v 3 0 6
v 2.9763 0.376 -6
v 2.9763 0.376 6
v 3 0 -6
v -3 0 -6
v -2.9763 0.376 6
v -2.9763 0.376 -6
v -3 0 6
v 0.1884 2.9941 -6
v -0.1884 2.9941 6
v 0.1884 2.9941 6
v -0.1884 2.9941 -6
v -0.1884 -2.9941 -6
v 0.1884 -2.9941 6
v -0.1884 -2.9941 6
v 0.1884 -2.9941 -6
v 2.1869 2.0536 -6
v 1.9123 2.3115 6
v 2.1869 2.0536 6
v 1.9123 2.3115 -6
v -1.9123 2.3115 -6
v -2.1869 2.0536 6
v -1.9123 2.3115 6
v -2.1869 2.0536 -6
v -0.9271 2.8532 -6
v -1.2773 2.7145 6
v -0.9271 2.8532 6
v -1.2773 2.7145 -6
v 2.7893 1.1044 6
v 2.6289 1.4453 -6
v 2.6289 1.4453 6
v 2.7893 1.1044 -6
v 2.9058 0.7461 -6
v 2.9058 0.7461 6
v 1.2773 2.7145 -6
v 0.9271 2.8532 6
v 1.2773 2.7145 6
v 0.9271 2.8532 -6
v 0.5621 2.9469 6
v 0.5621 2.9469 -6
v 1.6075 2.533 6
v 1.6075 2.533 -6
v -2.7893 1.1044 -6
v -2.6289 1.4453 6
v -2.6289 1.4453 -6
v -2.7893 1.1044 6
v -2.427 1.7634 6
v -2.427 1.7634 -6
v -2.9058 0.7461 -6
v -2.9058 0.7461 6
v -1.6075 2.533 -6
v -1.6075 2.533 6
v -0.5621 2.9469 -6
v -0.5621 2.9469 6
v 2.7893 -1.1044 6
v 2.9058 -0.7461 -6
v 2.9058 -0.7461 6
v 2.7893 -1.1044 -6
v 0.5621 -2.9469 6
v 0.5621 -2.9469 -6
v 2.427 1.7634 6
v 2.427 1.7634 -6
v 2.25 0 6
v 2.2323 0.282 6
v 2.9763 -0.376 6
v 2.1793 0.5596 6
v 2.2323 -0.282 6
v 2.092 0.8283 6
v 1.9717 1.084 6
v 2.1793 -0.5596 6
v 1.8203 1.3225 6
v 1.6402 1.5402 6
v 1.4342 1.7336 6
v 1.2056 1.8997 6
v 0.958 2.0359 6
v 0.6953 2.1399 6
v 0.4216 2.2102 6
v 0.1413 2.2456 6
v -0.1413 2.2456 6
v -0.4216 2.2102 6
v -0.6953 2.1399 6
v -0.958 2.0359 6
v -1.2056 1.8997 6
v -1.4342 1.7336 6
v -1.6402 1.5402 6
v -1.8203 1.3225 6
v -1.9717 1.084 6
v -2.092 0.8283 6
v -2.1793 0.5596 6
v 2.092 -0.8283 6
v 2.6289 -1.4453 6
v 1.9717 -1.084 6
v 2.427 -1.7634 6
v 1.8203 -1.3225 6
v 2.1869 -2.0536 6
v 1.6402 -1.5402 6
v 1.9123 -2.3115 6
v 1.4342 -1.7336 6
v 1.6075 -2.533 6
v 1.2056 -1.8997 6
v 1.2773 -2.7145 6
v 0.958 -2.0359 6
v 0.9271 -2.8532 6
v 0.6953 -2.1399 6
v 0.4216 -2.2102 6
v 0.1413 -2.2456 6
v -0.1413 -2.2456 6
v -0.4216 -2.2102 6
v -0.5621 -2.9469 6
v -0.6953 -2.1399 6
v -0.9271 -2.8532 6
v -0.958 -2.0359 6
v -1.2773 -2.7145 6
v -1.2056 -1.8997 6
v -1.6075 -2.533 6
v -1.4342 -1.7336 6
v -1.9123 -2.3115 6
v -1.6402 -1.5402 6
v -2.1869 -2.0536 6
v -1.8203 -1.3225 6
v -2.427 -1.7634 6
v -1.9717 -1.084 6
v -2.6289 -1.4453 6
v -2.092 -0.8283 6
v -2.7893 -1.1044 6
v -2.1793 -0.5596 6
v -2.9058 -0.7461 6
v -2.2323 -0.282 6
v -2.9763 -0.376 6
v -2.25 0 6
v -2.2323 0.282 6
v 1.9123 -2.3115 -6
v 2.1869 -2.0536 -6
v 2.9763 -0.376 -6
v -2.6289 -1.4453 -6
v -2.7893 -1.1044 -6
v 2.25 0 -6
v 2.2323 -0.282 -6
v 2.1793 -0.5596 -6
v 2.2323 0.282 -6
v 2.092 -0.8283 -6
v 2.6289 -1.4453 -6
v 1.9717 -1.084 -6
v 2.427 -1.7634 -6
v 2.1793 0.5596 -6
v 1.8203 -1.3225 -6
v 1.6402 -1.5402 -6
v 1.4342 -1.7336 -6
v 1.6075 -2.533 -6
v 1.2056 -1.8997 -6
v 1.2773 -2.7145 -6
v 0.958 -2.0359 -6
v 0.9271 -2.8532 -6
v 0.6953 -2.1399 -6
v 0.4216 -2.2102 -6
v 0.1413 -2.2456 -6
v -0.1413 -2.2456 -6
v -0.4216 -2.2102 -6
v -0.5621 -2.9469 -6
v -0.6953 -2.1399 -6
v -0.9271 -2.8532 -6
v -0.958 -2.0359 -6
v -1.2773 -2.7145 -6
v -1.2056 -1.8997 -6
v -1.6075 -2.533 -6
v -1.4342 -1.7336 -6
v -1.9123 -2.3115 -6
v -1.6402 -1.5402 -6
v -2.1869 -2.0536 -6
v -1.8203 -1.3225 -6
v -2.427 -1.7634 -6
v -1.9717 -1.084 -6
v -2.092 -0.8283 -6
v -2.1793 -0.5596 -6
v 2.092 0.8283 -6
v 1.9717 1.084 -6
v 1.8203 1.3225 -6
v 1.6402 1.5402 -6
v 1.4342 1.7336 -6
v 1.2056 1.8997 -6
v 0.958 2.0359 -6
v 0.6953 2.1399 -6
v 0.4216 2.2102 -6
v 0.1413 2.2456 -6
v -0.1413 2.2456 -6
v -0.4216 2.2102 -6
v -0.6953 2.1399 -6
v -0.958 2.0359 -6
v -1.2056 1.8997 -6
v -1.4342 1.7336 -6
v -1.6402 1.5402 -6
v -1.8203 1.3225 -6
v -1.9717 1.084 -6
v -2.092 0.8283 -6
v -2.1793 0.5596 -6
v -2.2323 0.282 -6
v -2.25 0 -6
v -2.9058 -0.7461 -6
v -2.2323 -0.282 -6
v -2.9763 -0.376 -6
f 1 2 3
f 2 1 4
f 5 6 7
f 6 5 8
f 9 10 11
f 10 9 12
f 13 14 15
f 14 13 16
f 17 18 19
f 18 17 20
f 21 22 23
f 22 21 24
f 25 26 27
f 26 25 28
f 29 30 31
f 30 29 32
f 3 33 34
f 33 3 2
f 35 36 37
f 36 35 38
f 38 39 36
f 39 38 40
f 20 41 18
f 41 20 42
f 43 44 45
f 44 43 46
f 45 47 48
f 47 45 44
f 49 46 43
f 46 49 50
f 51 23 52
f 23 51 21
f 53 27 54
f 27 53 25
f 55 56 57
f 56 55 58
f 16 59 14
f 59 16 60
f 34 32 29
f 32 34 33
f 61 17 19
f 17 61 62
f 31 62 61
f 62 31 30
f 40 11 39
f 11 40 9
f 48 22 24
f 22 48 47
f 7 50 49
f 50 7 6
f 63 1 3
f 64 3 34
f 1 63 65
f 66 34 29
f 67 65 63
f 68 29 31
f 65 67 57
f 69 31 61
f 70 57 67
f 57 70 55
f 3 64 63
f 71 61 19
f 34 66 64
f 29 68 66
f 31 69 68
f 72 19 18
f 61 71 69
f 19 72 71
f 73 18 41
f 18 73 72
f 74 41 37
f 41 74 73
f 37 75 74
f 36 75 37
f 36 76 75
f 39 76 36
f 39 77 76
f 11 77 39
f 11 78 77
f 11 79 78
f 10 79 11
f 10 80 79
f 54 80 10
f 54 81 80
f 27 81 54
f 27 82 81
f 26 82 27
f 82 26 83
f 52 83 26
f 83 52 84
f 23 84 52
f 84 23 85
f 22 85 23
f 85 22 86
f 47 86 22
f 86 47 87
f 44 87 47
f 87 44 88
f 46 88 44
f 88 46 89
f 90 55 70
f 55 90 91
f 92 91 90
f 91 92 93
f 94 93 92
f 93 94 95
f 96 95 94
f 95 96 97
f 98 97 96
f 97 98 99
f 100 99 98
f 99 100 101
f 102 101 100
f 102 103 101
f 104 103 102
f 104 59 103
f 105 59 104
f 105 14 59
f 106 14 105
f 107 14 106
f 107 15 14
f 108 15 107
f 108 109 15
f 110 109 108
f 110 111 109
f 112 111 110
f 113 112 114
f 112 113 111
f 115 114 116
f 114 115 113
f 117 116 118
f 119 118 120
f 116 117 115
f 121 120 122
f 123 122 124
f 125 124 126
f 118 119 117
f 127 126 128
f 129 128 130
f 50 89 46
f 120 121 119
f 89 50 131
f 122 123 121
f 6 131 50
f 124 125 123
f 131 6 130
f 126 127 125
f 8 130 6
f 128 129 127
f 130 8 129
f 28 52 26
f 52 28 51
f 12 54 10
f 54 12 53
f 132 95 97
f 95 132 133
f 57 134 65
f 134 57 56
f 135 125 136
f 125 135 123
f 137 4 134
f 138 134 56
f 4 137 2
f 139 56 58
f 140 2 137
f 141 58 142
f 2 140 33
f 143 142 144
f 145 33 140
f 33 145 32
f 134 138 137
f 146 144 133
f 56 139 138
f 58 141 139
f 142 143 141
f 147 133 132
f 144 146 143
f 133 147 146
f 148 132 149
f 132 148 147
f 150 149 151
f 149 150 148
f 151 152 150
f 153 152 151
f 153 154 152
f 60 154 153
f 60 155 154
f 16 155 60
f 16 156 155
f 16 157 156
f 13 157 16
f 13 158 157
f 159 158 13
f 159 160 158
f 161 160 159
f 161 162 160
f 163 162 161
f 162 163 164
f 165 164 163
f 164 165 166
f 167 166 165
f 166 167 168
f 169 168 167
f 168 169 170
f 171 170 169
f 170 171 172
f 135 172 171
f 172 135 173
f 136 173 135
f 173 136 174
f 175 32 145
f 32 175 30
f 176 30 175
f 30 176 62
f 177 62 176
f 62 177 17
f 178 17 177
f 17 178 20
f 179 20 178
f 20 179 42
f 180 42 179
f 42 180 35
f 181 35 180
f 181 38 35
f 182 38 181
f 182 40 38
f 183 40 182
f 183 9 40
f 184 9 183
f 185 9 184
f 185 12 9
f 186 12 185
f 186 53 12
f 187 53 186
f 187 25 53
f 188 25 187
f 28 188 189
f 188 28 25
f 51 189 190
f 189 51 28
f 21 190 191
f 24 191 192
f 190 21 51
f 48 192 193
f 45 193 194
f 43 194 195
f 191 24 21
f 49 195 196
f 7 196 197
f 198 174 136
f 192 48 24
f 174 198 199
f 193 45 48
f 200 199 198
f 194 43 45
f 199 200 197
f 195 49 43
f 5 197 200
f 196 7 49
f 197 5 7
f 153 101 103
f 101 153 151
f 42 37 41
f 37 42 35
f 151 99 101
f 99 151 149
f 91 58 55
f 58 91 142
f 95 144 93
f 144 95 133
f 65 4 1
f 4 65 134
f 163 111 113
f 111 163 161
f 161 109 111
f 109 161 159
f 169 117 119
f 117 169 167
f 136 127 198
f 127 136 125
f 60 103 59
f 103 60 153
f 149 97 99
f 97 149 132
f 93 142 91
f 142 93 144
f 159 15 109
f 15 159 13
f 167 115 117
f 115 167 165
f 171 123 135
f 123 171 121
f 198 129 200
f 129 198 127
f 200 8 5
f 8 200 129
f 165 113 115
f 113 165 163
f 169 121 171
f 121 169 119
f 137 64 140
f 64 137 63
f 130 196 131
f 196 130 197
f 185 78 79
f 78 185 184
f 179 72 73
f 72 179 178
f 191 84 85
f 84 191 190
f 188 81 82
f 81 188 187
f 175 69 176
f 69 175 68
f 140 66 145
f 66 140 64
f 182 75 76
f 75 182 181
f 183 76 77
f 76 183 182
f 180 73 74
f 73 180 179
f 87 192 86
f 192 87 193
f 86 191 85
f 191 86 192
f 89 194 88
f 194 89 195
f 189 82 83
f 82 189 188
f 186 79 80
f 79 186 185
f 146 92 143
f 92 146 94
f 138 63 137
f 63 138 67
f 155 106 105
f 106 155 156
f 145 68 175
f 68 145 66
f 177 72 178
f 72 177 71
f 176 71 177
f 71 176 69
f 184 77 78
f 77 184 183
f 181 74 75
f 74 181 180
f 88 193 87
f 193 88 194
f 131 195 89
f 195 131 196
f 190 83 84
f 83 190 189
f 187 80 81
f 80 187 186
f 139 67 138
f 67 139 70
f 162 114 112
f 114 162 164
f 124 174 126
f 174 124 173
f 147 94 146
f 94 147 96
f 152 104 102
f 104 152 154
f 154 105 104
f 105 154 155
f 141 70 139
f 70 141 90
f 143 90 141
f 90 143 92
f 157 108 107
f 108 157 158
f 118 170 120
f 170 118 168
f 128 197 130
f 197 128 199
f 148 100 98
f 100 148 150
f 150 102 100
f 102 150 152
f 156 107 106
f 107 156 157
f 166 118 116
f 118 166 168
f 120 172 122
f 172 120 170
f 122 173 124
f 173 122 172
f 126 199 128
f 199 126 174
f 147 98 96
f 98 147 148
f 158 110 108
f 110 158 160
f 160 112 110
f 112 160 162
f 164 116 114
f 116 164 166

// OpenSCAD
$fn = 50;


difference() {
	union() {
		translate(v = [0, 0, -6.0000000000]) {
			cylinder(h = 12, r = 3.0000000000);
		}
	}
	union() {
		translate(v = [0, 0, -100.0000000000]) {
			cylinder(h = 200, r = 2.2500000000);
		}
	}
}
